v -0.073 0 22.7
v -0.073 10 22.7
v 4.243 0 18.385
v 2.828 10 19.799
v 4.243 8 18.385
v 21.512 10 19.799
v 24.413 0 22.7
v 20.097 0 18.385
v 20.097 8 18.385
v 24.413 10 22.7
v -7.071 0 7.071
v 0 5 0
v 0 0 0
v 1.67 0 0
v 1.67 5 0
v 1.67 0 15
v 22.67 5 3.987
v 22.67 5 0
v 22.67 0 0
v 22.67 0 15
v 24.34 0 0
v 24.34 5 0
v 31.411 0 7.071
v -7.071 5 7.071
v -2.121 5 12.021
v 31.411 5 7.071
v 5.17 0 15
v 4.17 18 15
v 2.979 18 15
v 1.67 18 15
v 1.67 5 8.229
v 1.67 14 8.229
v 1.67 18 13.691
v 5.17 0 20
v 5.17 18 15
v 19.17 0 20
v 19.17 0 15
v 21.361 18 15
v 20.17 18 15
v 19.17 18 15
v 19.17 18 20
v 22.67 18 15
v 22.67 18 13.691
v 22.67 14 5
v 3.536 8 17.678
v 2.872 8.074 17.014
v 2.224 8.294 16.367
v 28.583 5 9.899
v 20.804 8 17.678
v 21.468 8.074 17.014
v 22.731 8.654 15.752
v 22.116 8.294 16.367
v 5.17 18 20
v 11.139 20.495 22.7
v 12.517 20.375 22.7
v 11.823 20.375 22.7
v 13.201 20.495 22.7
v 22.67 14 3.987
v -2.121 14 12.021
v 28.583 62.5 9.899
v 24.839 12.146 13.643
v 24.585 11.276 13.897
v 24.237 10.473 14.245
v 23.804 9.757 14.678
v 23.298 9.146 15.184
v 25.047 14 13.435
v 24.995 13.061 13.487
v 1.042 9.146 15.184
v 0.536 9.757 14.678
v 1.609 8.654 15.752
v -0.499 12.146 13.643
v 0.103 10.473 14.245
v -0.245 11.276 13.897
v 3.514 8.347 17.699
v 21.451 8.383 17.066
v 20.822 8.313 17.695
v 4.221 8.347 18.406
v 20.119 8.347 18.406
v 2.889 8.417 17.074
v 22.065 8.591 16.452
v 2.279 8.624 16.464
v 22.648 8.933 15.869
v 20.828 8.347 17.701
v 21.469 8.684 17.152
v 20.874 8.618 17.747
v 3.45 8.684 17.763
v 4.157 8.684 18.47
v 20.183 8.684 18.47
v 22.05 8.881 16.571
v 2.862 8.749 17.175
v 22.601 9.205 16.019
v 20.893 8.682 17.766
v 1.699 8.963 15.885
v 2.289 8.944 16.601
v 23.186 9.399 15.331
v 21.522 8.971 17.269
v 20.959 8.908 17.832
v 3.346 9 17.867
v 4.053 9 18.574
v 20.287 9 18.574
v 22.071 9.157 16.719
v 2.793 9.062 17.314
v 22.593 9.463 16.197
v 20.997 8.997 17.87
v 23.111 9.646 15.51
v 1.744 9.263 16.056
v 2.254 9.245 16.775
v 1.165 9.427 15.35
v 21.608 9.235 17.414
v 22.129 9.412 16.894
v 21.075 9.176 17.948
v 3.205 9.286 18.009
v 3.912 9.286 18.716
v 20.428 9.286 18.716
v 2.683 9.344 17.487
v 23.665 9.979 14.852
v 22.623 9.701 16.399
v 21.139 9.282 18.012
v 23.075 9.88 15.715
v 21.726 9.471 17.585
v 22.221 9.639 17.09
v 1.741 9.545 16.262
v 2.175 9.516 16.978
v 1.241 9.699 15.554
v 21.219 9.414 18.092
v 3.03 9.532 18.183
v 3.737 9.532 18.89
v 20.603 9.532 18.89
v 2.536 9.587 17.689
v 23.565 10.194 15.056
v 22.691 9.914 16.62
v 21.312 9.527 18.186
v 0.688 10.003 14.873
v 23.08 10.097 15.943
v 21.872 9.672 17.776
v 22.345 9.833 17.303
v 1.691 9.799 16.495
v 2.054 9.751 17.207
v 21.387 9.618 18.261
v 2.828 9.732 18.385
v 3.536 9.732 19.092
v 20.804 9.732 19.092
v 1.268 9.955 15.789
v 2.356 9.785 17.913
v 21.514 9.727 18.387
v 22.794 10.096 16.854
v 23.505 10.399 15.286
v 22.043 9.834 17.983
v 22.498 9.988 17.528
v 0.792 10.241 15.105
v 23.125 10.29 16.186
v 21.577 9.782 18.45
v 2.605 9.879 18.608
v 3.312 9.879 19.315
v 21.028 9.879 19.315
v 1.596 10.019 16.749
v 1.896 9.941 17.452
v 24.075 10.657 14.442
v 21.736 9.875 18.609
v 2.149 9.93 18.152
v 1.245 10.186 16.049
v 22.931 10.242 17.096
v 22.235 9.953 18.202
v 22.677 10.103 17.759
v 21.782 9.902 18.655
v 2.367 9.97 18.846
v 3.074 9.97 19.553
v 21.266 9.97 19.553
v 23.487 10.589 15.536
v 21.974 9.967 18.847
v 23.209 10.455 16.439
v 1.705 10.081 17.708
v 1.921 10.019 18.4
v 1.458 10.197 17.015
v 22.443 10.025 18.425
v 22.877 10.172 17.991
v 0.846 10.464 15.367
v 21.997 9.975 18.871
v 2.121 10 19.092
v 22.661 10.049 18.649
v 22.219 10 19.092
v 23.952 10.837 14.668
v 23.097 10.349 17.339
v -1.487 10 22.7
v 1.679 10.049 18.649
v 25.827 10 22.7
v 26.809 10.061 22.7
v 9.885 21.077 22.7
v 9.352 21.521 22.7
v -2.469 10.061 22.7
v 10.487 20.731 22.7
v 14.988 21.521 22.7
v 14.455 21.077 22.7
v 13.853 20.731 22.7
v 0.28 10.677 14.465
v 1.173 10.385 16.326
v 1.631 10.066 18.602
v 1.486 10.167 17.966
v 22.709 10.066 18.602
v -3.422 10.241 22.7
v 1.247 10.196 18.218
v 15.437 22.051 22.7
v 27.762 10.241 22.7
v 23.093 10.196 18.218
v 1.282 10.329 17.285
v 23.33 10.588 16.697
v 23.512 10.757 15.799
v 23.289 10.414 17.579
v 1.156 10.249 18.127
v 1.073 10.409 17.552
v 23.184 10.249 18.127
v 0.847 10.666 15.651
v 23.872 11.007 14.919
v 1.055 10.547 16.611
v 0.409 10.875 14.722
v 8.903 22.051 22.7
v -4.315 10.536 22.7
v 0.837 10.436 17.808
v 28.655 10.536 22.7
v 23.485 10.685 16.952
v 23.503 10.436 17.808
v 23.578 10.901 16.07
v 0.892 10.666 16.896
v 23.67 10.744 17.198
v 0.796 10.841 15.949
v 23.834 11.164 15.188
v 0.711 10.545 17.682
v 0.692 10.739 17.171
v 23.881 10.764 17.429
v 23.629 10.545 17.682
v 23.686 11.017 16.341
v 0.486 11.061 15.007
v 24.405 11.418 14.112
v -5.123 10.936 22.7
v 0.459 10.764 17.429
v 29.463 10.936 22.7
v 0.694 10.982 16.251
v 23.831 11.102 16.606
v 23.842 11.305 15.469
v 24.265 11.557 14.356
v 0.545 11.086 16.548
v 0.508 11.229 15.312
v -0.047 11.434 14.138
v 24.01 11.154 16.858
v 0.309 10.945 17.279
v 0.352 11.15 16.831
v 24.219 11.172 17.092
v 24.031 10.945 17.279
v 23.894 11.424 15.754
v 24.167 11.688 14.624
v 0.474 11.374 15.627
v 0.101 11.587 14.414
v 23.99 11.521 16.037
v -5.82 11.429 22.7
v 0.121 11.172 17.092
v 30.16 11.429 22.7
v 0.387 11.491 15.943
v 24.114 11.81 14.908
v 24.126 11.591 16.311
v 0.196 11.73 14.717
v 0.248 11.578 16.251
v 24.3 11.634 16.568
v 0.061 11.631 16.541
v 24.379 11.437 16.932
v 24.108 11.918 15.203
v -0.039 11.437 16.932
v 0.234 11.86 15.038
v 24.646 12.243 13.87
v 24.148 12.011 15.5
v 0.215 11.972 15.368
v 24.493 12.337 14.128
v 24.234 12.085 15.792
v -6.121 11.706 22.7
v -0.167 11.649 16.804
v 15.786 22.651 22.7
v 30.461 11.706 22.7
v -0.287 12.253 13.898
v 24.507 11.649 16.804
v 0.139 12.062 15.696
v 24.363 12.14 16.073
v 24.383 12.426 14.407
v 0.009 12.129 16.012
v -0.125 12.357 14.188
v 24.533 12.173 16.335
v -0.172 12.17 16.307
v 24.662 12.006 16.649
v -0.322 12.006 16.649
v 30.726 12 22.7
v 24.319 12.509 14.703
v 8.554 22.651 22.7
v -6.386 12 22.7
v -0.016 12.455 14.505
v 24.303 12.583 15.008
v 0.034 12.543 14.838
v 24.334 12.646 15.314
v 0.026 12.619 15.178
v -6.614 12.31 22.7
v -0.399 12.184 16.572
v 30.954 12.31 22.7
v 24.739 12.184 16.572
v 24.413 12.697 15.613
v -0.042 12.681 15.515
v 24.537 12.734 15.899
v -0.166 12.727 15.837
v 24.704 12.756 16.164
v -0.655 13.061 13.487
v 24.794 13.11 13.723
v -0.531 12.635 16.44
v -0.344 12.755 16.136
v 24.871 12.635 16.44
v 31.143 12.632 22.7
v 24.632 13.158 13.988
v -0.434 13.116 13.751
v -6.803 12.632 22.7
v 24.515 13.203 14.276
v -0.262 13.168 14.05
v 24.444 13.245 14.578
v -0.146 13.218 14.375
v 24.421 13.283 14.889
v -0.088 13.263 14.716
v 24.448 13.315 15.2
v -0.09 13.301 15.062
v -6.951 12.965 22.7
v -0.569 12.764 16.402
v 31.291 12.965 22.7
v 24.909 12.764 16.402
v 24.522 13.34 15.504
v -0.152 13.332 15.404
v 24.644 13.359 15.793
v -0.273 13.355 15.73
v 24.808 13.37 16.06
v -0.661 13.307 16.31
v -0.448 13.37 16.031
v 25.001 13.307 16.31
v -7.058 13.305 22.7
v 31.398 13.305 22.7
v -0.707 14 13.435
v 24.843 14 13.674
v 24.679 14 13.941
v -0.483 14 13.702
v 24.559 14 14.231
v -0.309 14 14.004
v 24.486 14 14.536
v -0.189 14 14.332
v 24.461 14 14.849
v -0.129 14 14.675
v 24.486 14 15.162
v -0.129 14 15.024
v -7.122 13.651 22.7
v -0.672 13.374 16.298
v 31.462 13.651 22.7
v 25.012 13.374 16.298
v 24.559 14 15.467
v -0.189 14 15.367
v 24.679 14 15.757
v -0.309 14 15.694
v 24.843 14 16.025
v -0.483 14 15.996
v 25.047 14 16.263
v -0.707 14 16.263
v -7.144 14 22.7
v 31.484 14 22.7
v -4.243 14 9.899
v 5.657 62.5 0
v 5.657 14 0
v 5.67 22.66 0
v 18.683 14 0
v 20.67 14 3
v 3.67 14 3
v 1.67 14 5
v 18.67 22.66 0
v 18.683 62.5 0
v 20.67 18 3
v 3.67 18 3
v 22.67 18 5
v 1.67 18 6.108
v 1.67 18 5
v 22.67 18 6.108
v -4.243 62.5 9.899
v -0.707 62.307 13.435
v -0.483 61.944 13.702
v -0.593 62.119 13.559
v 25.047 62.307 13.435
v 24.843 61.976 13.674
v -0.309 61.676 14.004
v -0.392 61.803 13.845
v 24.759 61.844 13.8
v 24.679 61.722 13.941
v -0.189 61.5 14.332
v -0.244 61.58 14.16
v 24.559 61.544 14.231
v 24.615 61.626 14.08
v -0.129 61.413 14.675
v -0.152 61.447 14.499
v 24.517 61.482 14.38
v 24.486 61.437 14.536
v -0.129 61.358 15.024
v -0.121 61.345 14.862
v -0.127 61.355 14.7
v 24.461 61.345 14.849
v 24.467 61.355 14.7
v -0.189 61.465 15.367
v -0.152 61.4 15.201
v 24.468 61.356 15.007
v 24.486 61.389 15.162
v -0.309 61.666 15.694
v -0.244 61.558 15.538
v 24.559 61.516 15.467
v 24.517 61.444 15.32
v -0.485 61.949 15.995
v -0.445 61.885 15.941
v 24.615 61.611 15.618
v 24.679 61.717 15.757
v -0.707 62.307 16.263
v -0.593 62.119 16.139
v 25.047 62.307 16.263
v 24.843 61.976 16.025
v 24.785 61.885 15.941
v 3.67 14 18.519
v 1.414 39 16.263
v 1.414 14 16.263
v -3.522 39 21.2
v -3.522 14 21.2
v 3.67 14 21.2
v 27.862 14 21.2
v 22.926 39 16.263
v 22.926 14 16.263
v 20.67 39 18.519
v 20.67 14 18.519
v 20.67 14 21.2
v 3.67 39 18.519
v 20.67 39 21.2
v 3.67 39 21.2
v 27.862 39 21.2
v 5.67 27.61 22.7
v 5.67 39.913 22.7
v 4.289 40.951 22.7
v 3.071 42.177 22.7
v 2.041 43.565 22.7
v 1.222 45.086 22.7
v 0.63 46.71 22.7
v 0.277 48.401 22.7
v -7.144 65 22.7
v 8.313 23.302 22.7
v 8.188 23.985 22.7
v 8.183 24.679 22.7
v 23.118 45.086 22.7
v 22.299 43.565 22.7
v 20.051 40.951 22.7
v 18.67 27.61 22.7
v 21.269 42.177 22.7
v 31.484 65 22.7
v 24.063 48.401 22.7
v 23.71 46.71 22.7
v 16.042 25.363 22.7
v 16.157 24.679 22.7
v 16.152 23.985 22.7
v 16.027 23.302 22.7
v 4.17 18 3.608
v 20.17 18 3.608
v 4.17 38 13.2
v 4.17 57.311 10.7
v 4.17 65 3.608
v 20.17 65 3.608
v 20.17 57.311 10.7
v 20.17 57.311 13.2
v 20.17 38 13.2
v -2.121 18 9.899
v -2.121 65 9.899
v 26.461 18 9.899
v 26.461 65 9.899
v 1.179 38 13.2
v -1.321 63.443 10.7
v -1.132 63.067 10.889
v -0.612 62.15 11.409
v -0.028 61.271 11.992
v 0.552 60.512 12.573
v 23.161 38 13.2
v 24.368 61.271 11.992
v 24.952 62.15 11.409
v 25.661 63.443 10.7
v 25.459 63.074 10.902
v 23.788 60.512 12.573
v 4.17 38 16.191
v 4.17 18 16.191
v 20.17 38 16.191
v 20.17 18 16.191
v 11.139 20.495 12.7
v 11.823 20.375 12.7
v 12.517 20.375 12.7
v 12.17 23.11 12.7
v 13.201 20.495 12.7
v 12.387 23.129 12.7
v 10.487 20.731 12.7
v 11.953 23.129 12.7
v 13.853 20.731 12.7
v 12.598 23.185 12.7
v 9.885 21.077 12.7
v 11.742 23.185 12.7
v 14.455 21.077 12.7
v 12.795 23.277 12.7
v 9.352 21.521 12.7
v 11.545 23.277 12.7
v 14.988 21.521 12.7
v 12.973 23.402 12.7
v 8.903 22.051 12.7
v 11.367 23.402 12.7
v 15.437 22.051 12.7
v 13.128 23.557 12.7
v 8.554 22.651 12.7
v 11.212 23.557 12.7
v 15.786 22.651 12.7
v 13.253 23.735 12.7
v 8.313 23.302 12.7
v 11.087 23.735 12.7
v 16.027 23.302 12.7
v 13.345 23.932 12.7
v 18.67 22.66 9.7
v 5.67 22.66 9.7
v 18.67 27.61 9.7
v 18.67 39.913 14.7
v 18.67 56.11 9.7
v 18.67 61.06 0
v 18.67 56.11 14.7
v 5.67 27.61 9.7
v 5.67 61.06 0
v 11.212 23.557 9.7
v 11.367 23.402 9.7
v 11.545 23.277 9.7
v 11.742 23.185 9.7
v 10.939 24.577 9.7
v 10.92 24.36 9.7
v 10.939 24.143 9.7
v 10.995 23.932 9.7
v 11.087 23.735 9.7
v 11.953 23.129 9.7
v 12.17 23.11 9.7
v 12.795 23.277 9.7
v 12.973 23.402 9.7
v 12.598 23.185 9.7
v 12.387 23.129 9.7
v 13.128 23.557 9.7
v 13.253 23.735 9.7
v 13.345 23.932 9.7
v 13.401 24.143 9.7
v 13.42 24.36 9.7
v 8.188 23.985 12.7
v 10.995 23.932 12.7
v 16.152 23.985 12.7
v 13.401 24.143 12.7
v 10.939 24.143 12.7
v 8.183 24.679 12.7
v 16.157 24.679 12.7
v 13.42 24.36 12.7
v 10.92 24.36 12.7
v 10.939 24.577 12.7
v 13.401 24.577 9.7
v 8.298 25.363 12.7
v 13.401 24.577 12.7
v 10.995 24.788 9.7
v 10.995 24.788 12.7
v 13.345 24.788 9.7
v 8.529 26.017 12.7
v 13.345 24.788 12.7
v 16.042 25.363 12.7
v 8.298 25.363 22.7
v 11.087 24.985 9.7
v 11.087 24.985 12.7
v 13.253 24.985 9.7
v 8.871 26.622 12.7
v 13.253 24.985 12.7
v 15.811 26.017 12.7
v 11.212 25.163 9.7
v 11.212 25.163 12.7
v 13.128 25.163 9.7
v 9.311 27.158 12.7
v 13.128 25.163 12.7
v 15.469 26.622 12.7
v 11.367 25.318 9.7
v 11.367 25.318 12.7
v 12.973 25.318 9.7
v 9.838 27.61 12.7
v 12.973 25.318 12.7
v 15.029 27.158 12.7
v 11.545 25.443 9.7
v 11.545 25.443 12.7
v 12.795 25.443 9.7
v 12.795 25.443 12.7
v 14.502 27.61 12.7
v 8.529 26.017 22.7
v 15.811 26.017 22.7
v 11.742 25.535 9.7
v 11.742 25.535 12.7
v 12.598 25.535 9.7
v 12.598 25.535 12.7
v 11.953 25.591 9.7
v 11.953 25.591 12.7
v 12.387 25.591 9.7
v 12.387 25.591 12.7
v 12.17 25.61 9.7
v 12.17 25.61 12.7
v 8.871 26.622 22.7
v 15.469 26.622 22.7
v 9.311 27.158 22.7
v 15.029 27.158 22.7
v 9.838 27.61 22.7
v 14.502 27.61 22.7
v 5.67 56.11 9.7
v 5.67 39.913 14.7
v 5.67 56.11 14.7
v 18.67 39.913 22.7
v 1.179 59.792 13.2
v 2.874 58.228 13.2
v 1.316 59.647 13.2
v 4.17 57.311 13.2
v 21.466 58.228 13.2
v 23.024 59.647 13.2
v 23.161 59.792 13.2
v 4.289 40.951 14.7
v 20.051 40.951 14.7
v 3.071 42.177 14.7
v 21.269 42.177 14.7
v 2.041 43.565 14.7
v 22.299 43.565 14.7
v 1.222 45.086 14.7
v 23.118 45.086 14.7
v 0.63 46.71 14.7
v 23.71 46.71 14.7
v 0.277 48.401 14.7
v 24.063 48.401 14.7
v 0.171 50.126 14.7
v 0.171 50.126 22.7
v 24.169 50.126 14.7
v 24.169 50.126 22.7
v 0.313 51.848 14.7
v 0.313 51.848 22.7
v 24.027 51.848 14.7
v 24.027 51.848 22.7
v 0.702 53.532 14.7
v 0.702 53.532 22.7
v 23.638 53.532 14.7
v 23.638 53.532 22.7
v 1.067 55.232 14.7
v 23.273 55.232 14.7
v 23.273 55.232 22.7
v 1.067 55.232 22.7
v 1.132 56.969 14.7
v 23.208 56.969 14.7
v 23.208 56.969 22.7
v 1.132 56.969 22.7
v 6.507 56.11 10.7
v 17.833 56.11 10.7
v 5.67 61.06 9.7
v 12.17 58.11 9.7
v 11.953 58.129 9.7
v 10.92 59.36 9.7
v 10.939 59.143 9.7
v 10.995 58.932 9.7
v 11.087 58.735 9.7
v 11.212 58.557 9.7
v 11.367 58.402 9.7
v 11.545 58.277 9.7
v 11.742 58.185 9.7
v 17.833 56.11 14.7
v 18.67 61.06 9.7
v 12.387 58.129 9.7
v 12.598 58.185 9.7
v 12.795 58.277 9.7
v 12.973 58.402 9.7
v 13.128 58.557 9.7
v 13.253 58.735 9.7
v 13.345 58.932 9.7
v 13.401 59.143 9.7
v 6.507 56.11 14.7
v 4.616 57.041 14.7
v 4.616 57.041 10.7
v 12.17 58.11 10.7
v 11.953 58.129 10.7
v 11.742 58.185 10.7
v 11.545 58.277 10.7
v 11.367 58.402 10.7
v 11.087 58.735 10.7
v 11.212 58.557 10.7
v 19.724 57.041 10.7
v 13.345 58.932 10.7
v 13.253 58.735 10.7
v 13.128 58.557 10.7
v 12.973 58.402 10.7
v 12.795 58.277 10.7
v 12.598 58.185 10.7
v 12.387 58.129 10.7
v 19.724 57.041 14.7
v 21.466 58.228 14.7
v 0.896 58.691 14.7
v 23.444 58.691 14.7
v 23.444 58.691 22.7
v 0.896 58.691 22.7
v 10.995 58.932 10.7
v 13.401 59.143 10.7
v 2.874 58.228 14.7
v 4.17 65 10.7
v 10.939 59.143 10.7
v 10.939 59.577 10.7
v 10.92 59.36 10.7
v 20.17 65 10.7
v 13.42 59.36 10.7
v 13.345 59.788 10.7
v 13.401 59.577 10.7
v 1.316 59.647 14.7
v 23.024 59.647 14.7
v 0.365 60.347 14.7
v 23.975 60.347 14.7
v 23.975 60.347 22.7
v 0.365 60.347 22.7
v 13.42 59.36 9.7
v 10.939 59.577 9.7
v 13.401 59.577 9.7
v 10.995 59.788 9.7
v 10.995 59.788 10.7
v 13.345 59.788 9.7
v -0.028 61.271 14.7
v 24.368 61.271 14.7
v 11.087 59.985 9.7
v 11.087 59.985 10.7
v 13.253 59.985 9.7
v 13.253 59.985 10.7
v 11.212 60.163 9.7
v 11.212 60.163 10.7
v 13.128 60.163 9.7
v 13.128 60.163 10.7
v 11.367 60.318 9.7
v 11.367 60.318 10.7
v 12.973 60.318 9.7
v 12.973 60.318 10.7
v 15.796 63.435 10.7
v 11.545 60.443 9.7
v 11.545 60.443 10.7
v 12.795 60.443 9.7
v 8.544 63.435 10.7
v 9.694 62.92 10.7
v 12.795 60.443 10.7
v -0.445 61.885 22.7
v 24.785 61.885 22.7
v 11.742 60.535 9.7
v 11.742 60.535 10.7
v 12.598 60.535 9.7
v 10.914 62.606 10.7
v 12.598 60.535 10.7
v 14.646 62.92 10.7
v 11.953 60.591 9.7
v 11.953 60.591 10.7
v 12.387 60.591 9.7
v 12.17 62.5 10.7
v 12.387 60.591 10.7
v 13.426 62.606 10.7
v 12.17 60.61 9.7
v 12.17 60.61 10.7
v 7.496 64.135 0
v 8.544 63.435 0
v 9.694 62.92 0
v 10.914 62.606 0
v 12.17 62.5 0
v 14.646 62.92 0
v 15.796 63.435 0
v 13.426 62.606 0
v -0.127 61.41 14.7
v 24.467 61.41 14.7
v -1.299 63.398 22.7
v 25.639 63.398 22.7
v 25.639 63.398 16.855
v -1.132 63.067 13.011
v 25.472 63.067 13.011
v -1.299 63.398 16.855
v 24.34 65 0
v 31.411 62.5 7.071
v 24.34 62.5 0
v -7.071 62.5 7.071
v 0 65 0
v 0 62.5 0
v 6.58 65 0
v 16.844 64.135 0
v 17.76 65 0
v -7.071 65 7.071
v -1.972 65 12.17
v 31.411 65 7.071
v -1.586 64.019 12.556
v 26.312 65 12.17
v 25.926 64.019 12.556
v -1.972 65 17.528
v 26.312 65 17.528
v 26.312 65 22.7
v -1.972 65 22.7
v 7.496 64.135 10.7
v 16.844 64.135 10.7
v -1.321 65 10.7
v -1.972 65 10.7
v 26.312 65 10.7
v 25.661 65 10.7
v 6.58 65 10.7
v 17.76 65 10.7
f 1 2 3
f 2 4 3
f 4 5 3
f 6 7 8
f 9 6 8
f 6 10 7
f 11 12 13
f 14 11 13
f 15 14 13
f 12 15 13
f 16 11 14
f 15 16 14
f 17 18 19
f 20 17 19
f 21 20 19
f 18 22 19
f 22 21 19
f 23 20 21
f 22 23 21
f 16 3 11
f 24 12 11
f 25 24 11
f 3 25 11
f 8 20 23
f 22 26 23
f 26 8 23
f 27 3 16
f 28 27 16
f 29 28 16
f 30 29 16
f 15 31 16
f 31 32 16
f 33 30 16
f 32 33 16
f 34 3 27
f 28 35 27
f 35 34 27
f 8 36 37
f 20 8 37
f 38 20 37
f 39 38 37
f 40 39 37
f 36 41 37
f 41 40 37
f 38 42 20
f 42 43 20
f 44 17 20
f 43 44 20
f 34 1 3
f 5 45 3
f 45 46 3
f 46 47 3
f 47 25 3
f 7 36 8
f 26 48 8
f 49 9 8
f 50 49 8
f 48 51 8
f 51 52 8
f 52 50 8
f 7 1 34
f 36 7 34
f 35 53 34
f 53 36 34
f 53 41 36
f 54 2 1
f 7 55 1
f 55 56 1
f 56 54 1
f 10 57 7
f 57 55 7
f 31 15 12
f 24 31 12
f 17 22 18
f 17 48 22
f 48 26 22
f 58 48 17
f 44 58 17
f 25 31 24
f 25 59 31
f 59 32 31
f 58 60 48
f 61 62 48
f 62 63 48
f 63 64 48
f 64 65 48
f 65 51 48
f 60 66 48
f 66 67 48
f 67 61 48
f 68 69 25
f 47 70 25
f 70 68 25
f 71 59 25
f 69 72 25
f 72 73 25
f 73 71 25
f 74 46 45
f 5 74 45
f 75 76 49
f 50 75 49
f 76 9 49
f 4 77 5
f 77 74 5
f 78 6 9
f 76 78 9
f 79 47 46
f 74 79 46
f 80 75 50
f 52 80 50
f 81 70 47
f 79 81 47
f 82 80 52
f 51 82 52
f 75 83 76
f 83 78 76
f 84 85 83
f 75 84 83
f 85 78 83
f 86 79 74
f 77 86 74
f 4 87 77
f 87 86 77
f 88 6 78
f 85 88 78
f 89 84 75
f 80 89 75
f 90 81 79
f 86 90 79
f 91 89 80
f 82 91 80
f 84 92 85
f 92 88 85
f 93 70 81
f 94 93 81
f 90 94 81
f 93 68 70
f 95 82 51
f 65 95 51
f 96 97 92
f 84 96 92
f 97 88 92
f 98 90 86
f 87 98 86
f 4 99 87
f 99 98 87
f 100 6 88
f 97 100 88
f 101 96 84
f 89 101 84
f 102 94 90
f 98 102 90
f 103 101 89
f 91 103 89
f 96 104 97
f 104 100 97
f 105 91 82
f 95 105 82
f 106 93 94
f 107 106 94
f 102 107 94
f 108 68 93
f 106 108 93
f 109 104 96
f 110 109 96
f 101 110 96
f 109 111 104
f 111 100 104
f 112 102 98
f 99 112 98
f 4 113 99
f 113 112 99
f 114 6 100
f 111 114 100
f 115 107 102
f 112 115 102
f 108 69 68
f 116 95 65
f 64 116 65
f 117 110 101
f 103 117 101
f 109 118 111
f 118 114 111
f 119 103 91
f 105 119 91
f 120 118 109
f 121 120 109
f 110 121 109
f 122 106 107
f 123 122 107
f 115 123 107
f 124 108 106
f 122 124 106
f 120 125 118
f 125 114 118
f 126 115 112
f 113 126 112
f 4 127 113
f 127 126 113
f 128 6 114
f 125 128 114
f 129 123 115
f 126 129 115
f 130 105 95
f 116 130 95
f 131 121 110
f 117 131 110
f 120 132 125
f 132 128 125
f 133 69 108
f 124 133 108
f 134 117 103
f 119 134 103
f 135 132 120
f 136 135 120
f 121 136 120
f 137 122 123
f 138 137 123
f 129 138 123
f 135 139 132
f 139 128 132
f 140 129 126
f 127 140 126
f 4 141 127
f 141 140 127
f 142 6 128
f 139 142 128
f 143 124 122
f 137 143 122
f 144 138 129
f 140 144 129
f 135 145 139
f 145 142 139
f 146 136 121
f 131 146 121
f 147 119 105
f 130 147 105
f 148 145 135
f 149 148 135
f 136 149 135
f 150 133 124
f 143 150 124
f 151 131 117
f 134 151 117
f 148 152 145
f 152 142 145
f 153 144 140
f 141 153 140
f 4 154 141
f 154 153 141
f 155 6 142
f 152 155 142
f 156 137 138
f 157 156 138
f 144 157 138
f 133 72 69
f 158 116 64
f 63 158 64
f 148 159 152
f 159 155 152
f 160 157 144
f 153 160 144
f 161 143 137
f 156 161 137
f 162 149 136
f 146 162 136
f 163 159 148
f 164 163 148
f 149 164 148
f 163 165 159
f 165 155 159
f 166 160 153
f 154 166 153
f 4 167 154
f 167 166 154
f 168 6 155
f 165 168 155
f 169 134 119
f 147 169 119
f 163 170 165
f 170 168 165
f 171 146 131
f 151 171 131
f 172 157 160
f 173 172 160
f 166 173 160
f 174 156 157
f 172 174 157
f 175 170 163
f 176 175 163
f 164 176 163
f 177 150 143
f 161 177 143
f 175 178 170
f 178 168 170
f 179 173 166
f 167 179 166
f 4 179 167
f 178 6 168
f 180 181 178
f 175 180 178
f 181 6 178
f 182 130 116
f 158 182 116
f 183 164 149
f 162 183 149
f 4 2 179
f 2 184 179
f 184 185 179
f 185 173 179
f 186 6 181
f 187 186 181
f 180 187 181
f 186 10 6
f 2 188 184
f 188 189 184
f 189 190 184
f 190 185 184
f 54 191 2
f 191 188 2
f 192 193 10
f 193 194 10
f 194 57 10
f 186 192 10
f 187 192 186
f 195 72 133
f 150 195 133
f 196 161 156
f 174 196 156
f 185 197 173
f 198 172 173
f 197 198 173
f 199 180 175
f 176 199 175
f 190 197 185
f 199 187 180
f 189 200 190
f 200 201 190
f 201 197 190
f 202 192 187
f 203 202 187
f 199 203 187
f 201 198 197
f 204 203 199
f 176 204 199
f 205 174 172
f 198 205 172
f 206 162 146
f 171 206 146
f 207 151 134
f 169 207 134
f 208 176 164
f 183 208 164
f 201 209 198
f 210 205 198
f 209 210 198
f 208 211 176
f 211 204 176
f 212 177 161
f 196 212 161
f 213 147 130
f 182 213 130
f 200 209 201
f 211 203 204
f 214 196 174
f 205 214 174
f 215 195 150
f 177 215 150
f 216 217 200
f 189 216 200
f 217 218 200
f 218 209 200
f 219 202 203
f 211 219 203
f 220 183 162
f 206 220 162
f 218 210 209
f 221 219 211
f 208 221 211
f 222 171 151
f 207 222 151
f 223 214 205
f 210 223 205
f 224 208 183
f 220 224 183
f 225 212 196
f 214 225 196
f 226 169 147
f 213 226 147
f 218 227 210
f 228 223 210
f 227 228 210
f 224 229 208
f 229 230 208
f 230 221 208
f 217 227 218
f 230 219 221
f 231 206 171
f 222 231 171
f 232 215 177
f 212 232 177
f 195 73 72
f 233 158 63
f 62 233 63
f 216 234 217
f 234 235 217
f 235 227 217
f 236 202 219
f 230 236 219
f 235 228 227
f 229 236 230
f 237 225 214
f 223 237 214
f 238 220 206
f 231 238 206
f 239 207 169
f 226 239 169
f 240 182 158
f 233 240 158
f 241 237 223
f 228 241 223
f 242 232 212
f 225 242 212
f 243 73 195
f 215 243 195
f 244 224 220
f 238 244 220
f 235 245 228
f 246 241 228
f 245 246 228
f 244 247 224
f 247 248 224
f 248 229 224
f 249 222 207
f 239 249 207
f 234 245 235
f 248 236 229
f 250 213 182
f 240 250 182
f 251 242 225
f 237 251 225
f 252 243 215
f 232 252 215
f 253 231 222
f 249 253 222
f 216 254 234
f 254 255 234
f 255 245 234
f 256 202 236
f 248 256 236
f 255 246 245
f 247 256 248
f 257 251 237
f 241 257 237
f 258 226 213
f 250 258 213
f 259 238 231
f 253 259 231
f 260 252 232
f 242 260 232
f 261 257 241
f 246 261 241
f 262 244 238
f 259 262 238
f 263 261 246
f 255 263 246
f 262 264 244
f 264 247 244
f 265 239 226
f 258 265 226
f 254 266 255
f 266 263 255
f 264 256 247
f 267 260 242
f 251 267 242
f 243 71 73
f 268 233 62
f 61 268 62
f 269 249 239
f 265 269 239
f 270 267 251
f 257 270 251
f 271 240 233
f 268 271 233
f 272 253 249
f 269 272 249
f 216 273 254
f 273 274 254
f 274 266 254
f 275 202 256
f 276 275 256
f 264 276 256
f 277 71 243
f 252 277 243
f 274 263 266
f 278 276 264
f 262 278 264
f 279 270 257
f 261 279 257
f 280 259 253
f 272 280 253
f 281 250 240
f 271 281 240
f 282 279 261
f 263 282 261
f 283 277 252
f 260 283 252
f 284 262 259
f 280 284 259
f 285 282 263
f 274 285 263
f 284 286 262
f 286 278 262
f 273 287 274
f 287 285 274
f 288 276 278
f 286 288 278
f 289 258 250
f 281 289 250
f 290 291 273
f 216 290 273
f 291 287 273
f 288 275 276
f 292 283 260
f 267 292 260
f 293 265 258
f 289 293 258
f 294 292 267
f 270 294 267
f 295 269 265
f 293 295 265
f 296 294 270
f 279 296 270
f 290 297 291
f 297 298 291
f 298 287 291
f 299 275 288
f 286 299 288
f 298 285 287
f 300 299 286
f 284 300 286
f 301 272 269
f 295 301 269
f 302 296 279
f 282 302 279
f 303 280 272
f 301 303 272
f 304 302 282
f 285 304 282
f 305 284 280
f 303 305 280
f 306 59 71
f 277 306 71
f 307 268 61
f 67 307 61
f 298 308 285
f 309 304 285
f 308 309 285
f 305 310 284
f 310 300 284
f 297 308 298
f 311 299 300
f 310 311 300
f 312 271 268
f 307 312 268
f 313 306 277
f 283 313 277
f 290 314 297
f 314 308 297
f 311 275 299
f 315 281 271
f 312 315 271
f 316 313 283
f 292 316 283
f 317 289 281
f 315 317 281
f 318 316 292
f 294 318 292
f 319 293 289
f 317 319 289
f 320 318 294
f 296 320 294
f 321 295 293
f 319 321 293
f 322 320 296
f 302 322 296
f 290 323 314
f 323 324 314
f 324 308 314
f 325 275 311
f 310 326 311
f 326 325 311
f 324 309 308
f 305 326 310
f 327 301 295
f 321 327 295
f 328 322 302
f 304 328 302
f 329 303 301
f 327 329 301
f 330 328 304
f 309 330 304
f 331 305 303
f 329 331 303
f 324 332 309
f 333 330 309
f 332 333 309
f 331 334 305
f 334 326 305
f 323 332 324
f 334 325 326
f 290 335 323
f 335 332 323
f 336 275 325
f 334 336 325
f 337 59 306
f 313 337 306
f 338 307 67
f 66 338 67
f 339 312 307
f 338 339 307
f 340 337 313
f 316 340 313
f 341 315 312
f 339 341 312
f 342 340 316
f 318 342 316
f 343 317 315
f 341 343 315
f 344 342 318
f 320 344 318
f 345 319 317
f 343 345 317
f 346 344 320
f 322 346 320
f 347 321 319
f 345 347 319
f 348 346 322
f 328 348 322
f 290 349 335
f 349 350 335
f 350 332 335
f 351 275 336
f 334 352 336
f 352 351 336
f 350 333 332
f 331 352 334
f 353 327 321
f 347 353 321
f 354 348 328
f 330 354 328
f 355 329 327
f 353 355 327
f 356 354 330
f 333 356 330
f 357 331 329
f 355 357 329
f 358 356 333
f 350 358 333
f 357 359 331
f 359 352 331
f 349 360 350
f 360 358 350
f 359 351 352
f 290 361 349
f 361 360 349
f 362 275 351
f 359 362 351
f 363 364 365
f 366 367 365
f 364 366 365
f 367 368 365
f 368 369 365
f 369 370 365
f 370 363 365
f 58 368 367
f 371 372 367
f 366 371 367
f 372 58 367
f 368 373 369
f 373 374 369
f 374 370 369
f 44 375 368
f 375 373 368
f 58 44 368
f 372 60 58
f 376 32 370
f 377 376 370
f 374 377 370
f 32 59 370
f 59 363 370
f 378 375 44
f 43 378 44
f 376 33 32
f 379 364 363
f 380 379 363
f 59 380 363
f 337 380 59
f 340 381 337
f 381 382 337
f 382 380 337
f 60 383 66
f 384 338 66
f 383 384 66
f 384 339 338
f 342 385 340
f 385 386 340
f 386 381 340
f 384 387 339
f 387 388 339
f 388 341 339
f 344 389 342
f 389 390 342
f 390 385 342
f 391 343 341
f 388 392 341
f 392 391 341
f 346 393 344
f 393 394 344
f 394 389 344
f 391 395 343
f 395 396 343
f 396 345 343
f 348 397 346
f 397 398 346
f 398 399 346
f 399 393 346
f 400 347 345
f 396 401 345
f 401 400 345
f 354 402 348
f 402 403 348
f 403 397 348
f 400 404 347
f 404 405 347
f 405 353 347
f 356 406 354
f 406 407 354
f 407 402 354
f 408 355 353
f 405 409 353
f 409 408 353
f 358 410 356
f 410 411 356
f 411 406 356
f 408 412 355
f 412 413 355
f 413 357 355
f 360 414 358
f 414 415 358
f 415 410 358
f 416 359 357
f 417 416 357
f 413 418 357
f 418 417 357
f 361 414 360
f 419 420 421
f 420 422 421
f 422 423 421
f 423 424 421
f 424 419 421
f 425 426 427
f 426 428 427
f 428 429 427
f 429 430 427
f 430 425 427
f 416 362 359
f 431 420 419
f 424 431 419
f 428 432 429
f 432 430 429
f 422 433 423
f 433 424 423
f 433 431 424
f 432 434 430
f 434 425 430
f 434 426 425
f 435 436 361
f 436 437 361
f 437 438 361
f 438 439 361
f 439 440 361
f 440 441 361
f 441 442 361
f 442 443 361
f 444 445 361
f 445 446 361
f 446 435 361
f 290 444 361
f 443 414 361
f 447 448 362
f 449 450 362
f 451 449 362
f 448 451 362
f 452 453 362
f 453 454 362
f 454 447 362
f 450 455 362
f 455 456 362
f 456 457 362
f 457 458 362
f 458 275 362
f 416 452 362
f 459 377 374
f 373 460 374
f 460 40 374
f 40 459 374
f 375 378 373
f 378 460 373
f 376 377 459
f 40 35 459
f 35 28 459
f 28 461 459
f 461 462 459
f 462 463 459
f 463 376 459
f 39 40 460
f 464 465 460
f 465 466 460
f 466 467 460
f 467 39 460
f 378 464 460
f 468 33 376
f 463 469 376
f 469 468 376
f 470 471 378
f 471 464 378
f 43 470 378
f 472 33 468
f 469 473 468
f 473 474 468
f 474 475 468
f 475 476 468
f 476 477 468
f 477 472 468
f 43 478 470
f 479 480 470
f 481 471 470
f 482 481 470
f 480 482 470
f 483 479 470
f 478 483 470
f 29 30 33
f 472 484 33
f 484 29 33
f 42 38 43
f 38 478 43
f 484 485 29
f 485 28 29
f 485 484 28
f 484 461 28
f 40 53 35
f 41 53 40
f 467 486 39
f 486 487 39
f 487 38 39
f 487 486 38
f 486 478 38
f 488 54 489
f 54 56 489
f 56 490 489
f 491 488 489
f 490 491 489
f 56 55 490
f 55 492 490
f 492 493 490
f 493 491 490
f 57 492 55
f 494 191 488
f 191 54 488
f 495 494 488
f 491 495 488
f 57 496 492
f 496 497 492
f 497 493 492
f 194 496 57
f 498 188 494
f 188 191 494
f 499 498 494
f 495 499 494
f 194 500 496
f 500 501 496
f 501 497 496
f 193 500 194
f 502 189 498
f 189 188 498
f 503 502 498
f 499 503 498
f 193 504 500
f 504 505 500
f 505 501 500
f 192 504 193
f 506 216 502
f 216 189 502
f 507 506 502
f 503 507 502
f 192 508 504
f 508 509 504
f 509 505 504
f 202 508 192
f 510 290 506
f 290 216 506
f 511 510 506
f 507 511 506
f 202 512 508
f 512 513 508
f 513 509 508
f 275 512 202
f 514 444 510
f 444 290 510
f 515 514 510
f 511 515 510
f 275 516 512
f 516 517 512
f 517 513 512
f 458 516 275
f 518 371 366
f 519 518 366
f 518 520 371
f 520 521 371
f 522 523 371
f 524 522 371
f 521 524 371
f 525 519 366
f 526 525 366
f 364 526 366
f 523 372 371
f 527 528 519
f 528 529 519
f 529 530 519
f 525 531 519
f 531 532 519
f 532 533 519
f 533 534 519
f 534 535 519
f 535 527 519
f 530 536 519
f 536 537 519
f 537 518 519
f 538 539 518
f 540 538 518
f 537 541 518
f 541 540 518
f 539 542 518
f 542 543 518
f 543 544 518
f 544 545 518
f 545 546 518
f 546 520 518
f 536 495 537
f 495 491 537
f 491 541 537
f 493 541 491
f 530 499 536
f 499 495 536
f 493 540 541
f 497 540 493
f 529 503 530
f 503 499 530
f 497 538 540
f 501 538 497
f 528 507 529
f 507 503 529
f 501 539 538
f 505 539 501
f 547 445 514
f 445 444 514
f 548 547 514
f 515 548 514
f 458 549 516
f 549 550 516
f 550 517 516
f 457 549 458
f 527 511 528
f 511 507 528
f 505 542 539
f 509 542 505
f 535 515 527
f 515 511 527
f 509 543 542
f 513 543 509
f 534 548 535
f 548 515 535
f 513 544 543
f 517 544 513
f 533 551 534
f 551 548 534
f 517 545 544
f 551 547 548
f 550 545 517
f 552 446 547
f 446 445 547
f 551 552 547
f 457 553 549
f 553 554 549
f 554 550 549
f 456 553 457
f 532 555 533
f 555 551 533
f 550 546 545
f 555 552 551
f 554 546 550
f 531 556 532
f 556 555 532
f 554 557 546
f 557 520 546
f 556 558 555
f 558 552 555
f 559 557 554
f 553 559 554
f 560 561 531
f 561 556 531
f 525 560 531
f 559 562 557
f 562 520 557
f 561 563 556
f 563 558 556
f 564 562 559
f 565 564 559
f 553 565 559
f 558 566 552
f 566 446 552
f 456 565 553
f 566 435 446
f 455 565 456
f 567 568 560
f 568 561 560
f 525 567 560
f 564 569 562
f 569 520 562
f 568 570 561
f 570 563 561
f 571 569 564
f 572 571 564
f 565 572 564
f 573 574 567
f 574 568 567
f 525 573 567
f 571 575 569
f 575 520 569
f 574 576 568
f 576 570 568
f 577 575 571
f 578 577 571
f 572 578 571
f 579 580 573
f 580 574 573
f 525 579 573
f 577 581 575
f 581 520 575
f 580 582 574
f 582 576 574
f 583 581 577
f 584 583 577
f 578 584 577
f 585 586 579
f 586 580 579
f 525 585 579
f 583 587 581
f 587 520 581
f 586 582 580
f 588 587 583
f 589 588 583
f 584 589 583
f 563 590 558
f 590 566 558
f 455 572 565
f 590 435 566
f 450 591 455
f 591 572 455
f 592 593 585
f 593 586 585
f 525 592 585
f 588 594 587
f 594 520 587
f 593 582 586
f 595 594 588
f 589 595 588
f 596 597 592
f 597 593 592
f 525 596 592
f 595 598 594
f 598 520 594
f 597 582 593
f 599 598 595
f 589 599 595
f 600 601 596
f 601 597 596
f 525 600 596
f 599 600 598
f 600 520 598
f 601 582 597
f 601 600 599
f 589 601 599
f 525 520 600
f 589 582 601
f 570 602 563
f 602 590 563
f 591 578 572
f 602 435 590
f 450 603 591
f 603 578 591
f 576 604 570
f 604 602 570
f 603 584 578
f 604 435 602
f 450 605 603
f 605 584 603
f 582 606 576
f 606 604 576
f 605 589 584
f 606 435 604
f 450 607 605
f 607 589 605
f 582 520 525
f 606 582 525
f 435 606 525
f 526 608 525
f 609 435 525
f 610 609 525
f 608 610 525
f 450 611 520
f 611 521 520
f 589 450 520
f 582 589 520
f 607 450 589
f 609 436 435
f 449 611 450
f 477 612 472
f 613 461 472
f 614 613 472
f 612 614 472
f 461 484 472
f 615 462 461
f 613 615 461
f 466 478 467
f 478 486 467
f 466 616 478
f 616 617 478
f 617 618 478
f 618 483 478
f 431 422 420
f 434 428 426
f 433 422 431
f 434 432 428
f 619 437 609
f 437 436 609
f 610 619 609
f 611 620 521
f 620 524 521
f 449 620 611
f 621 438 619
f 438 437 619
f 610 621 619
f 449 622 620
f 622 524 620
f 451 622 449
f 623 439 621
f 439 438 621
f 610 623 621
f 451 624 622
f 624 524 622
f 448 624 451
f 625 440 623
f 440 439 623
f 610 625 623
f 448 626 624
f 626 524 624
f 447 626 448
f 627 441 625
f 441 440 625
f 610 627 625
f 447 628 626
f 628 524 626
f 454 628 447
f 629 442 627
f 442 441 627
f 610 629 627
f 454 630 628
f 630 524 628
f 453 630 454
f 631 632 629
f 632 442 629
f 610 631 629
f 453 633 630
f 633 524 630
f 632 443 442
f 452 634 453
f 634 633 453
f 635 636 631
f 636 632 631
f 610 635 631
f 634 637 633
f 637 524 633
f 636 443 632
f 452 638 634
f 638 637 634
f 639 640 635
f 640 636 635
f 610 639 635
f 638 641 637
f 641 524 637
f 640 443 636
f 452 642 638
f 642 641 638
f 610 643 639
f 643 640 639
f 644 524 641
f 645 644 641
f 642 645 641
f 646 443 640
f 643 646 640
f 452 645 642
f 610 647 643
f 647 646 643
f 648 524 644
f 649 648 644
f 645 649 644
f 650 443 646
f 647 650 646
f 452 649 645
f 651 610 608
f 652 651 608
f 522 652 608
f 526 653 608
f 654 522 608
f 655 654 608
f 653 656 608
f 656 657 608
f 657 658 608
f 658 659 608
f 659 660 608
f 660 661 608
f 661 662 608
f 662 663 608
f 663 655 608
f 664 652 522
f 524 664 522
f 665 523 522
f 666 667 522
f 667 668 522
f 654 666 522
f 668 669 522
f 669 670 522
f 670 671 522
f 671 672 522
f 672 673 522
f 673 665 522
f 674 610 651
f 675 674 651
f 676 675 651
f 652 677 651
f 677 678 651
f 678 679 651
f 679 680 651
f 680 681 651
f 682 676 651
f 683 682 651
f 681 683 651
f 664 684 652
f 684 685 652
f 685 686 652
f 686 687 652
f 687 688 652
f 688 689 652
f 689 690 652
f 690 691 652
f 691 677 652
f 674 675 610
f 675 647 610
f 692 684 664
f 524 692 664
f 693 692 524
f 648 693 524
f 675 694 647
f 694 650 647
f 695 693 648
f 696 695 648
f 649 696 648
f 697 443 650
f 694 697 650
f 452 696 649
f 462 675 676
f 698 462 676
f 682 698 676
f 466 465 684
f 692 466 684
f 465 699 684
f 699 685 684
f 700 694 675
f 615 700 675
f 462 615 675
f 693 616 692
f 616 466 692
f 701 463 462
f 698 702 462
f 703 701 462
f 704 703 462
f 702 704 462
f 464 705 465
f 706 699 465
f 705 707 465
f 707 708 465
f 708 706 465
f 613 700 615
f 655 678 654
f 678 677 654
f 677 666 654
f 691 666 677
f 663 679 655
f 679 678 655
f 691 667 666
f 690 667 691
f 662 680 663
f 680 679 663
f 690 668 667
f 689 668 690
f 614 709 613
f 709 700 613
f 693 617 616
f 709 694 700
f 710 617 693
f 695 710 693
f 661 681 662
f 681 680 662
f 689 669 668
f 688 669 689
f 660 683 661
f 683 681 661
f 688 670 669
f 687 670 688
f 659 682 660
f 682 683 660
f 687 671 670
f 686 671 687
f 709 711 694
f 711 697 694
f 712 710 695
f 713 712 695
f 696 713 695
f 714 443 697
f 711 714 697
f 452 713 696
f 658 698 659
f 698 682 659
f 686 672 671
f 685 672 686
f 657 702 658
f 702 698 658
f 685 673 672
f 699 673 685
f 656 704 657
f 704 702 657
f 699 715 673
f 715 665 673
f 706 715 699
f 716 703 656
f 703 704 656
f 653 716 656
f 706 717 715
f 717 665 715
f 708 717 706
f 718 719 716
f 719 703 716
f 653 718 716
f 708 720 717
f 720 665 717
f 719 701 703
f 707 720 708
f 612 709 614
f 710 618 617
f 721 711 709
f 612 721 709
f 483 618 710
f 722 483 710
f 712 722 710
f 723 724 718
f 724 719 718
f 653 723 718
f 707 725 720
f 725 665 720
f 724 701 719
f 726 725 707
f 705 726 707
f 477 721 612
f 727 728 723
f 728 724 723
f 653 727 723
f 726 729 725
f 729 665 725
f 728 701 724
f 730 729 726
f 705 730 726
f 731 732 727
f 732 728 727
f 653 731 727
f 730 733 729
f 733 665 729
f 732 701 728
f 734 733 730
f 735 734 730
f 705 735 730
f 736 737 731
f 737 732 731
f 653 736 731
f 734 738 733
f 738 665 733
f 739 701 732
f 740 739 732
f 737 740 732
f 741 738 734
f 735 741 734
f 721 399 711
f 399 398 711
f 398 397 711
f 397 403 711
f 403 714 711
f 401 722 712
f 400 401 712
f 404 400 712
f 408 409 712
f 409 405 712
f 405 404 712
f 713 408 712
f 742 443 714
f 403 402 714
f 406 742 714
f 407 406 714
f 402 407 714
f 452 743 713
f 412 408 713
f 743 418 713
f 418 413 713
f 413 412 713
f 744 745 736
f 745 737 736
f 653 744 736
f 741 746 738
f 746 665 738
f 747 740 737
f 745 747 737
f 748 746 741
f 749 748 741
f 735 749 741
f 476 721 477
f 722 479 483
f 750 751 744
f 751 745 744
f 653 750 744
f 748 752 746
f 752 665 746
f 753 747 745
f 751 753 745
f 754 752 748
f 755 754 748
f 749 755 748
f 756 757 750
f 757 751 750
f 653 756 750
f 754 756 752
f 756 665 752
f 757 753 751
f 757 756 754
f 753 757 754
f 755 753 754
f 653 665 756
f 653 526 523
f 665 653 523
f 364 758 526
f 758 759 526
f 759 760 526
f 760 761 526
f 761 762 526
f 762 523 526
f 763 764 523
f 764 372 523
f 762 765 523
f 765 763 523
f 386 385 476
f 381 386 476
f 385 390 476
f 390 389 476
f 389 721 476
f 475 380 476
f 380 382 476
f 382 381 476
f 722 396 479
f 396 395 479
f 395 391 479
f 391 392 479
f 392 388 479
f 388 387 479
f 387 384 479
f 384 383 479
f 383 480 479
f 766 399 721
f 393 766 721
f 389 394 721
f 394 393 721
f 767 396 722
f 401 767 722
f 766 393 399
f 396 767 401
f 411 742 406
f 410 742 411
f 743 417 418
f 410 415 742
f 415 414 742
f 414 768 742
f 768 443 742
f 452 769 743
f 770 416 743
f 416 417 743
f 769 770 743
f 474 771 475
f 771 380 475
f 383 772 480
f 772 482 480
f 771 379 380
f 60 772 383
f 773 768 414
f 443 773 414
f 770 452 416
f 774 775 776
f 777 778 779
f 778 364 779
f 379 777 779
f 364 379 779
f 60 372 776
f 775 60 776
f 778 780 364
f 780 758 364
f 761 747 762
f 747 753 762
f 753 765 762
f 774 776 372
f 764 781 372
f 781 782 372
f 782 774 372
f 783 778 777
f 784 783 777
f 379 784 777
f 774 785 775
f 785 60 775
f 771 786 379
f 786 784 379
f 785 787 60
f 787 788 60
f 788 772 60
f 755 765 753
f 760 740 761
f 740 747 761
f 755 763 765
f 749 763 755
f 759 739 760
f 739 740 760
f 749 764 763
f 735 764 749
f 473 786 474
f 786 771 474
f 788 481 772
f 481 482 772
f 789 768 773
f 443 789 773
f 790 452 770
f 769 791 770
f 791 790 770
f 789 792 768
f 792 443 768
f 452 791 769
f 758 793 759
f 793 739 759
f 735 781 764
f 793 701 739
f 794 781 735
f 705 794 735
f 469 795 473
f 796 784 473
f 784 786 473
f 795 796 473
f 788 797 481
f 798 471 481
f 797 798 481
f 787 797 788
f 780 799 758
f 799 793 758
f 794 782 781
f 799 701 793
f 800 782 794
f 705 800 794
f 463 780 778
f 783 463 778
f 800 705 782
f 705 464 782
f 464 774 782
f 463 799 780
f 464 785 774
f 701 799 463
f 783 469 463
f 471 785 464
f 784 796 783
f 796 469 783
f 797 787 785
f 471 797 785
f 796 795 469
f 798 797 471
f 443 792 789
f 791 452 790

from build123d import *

# Parameters (mm, degrees)
EXTRUDE_1_DEPTH        = 65
CUT_EXTRUDE_1_DEPTH    = 57.5
SKETCH_4_R             = 1.25
SKETCH_4_W             = 13
SKETCH_4_H             = 28.5
CUT_EXTRUDE_2_DEPTH    = 13
SKETCH_9_W             = 13
SKETCH_9_H             = 38.4
CUT_EXTRUDE_6_DEPTH    = 75.806476324
CUT_EXTRUDE_7_DEPTH    = 18
SKETCH_13_W            = 21
SKETCH_13_H            = 5
CUT_EXTRUDE_10_DEPTH   = 18
CUT_EXTRUDE_8_DEPTH    = 78.086308123
CUT_EXTRUDE_9_DEPTH    = 10
FILLET_1_R             = 4
FILLET_1_OF_MIRROR_3_R = 4
SKETCH_21_W            = 21
SKETCH_21_H            = 14
CUT_EXTRUDE_17_DEPTH   = 8
SKETCH_17_W            = 19.798748342
SKETCH_17_H            = 9
CUT_EXTRUDE_13_DEPTH   = 3
SKETCH_18_W            = 14
SKETCH_18_H            = 18
CUT_EXTRUDE_14_DEPTH   = 5
SKETCH_19_R            = 4
CUT_EXTRUDE_15_DEPTH   = 10
FILLET_6_R             = 2
SKETCH_5_R             = 12
CUT_EXTRUDE_3_DEPTH    = 8
CUT_EXTRUDE_16_DEPTH   = 61.954985592
CUT_EXTRUDE_18_DEPTH   = 25
CUT_EXTRUDE_19_DEPTH   = 20
CUT_EXTRUDE_5_DEPTH    = 76.706738594
CUT_EXTRUDE_20_DEPTH   = 12
FILLET_5_R             = 10


with BuildPart() as part:
    # 草圖1 → 填料-伸長1 (new body)
    with BuildSketch(Plane(origin=(0, 0, 0), x_dir=(1, 0, 0), z_dir=(0, 1, 0))):
        Polygon((0, 0), (24.34, 0), (34.67, -10.33), (34.67, -22.7), (-10.33, -22.7), (-10.33, -10.33), align=None)
    extrude(amount=EXTRUDE_1_DEPTH)

    # 草圖2 → 除料-伸長1 (cut)
    with BuildSketch(Plane(origin=(0, 5, 0), x_dir=(1, 0, 0), z_dir=(0, 1, 0))):
        Polygon((0, 0), (-22.7, -22.7), (-17.043145751, -22.7), (5.656854249, 0), align=None)
    cut_extrude_1 = extrude(amount=CUT_EXTRUDE_1_DEPTH, mode=Mode.SUBTRACT)

    # 鏡射1: 除料-伸長1 across plane
    add(cut_extrude_1.mirror(Plane.ZY.offset(-12.17)), mode=Mode.SUBTRACT)

    # 草圖4 → 除料-伸長2 (cut)
    with BuildSketch(Plane.XY.offset(22.7)):
        with Locations((12.17, 59.36)):
            Circle(SKETCH_4_R)
        with Locations((12.17, 24.36)):
            Circle(SKETCH_4_R)
        with Locations((12.17, 41.86)):
            Rectangle(SKETCH_4_W, SKETCH_4_H)
    extrude(amount=-CUT_EXTRUDE_2_DEPTH, mode=Mode.SUBTRACT)

    # 草圖9 → 除料-伸長6 (cut, through all)
    with BuildSketch(Plane.XY.offset(9.7)):
        with Locations((12.17, 41.86)):
            Rectangle(SKETCH_9_W, SKETCH_9_H)
    extrude(amount=-CUT_EXTRUDE_6_DEPTH, mode=Mode.SUBTRACT)

    # 草圖10 → 除料-伸長7 (cut)
    with BuildSketch(Plane.XZ):
        Polygon((20.67, 3), (3.67, 3), (1.67, 5), (1.67, 10), (22.67, 10), (22.67, 5), align=None)
    extrude(amount=-CUT_EXTRUDE_7_DEPTH, mode=Mode.SUBTRACT)

    # 草圖13 → 除料-伸長10 (cut)
    with BuildSketch(Plane.XZ):
        with Locations((12.17, 12.5)):
            Rectangle(SKETCH_13_W, SKETCH_13_H)
    extrude(amount=-CUT_EXTRUDE_10_DEPTH, mode=Mode.SUBTRACT)

    # 草圖11 → 除料-伸長8 (cut, through all)
    with BuildSketch(Plane.XZ):
        Polygon((-9.55794071, 4.584194914), (-25.114289896, 20.1405441), (-14.849242405, 30.405591591), (0.707106781, 14.849242405), align=None)
    cut_extrude_8 = extrude(amount=-CUT_EXTRUDE_8_DEPTH, mode=Mode.SUBTRACT)

    # 草圖12 → 除料-伸長9 (cut)
    with BuildSketch(Plane.XZ):
        Polygon((-4.242640687, 9.899494937), (-19.798989873, 25.455844123), (-11.313708499, 33.941125497), (4.242640687, 18.384776311), align=None)
    cut_extrude_9 = extrude(amount=-CUT_EXTRUDE_9_DEPTH, mode=Mode.SUBTRACT)

    # 圓角1
    fillet_1_edges = [part.edges().sort_by_distance(p)[0] for p in [
        (-3.218272016, 10, 18.774621202),
    ]]
    fillet(fillet_1_edges, radius=FILLET_1_R)

    # 鏡射3: 除料-伸長8, 除料-伸長9 across plane
    add(cut_extrude_8.mirror(Plane.ZY.offset(-12.17)), mode=Mode.SUBTRACT)
    add(cut_extrude_9.mirror(Plane.ZY.offset(-12.17)), mode=Mode.SUBTRACT)

    # 圓角1 of 鏡射3
    fillet_1_of_mirror_3_edges = [part.edges().sort_by_distance(p)[0] for p in [
        (27.558272016, 10, 18.774621202),
    ]]
    fillet(fillet_1_of_mirror_3_edges, radius=FILLET_1_OF_MIRROR_3_R)

    # 草圖21 → 除料-伸長17 (cut)
    with BuildSketch(Plane(origin=(0, 0, 0), x_dir=(-1, 0, 0), z_dir=(0, 0, -1))):
        with Locations((-12.17, 7)):
            Rectangle(SKETCH_21_W, SKETCH_21_H)
    extrude(amount=-CUT_EXTRUDE_17_DEPTH, mode=Mode.SUBTRACT)

    # 草圖17 → 除料-伸長13 (cut)
    with BuildSketch(Plane(origin=(2.828427125, 0, 2.828427125), x_dir=(-0.7071067811865472, 0, 0.7071067811865479), z_dir=(-0.7071067811865479, 0, -0.7071067811865472))):
        with Locations((11.537637522, 9.5)):
            Rectangle(SKETCH_17_W, SKETCH_17_H)
    extrude(amount=-CUT_EXTRUDE_13_DEPTH, mode=Mode.SUBTRACT)

    # 草圖18 → 除料-伸長14 (cut)
    with BuildSketch(Plane.XY.offset(15)):
        with Locations((12.17, 9)):
            Rectangle(SKETCH_18_W, SKETCH_18_H)
    extrude(amount=CUT_EXTRUDE_14_DEPTH, mode=Mode.SUBTRACT)

    # 草圖19 → 除料-伸長15 (cut)
    with BuildSketch(Plane.XY.offset(22.7)):
        with Locations((12.17, 24.36)):
            Circle(SKETCH_19_R)
    extrude(amount=-CUT_EXTRUDE_15_DEPTH, mode=Mode.SUBTRACT)

    # 圓角6
    fillet_6_edges = [part.edges().sort_by_distance(p)[0] for p in [
        (0.707106781, 39.5, 14.849242405),
        (3.889087297, 10, 18.03122292),
        (1.535533906, 11.171572875, 15.67766953),
        (23.632893219, 39.5, 14.849242405),
        (20.450912703, 10, 18.03122292),
        (22.804466094, 11.171572875, 15.67766953),
    ]]
    fillet(fillet_6_edges, radius=FILLET_6_R)

    # 草圖5 → 除料-伸長3 (cut)
    with BuildSketch(Plane.XY.offset(22.7)):
        with Locations((12.17, 50)):
            Circle(SKETCH_5_R)
    extrude(amount=-CUT_EXTRUDE_3_DEPTH, mode=Mode.SUBTRACT)

    # 草圖20 → 除料-伸長16 (cut, through all)
    with BuildSketch(Plane.XZ.offset(-18)):
        Polygon((4.17, 3.608174593), (-2.121320344, 9.899494937), (1.17918472, 13.2), (4.17, 13.2), align=None)
        Polygon((20.17, 13.2), (23.16081528, 13.2), (26.461320344, 9.899494937), (20.17, 3.608174593), align=None)
    extrude(amount=-CUT_EXTRUDE_16_DEPTH, mode=Mode.SUBTRACT)

    # 草圖22 → 除料-伸長18 (cut)
    with BuildSketch(Plane.XZ.offset(-14)):
        Polygon((1.414213562, 16.263455967), (-3.52233047, 21.2), (3.67, 21.2), (3.67, 18.519242405), align=None)
        Polygon((27.86233047, 21.2), (20.67, 21.2), (20.67, 18.519242405), (22.925786438, 16.263455967), align=None)
    extrude(amount=-CUT_EXTRUDE_18_DEPTH, mode=Mode.SUBTRACT)

    # 草圖23 → 除料-伸長19 (cut)
    with BuildSketch(Plane.XZ.offset(-18)):
        Polygon((4.17, 13.2), (1.17918472, 13.2), (4.17, 16.19081528), align=None)
        Polygon((23.16081528, 13.2), (20.17, 16.19081528), (20.17, 13.2), align=None)
    extrude(amount=-CUT_EXTRUDE_19_DEPTH, mode=Mode.SUBTRACT)

    # 草圖8 → 除料-伸長5 (cut, through all)
    with BuildSketch(Plane.XY.offset(22.7)):
        with BuildLine():
            Line((4.67, 70), (4.67, 73.83732793))
            Line((4.67, 73.83732793), (19.67, 73.83732793))
            Line((19.67, 73.83732793), (19.67, 70))
            ThreePointArc((19.67, 70), (12.17, 62.5), (4.67, 70))
        make_face()
    extrude(amount=-CUT_EXTRUDE_5_DEPTH, mode=Mode.SUBTRACT)

    # 草圖7 → 除料-伸長20 (cut)
    with BuildSketch(Plane.XY.offset(22.7)):
        with BuildLine():
            Line((-2.83, 70), (27.17, 70))
            ThreePointArc((27.17, 70), (12.17, 55), (-2.83, 70))
        make_face()
    extrude(amount=-CUT_EXTRUDE_20_DEPTH, mode=Mode.SUBTRACT)

    # 圓角5
    # the kernel refuses this fillet: 10 mm, written as the material it takes off along each edge
    with BuildSketch(Plane(origin=(3.203430143, 57.975, 14.7), x_dir=(-0.6822618553726185, 0.7311078994946726, 0), z_dir=(0, 0, 1))) as fillet_5_piece_1:
        with BuildLine():
            CenterArc((7.130730412, 9.839819243), FILLET_5_R, 209.862696675, 49.868396236)
            ThreePointArc((-1.541480723, 4.86058697), (-0.50958274, 2.5131167), (0, 0))
            ThreePointArc((0, 0), (2.674023904, 0.240271135), (5.348047809, 0))
        make_face()
    extrude(amount=21.370119522, mode=Mode.SUBTRACT)
    with BuildSketch(Plane(origin=(21.136569857, 57.975, 14.7), x_dir=(0.490653030896535, -0.8713550385876264, 0), z_dir=(0, 0, 1))) as fillet_5_piece_2:
        with BuildLine():
            CenterArc((7.223814974, 9.771686454), FILLET_5_R, 207.864748404, 49.868396236)
            ThreePointArc((-1.616718622, 5.097826622), (-0.579329834, 2.621547444), (0, 0))
            ThreePointArc((0, 0), (2.549581756, 0.273976255), (5.099163511, 0))
        make_face()
    extrude(amount=21.370119522, mode=Mode.SUBTRACT)


solid = part.part
